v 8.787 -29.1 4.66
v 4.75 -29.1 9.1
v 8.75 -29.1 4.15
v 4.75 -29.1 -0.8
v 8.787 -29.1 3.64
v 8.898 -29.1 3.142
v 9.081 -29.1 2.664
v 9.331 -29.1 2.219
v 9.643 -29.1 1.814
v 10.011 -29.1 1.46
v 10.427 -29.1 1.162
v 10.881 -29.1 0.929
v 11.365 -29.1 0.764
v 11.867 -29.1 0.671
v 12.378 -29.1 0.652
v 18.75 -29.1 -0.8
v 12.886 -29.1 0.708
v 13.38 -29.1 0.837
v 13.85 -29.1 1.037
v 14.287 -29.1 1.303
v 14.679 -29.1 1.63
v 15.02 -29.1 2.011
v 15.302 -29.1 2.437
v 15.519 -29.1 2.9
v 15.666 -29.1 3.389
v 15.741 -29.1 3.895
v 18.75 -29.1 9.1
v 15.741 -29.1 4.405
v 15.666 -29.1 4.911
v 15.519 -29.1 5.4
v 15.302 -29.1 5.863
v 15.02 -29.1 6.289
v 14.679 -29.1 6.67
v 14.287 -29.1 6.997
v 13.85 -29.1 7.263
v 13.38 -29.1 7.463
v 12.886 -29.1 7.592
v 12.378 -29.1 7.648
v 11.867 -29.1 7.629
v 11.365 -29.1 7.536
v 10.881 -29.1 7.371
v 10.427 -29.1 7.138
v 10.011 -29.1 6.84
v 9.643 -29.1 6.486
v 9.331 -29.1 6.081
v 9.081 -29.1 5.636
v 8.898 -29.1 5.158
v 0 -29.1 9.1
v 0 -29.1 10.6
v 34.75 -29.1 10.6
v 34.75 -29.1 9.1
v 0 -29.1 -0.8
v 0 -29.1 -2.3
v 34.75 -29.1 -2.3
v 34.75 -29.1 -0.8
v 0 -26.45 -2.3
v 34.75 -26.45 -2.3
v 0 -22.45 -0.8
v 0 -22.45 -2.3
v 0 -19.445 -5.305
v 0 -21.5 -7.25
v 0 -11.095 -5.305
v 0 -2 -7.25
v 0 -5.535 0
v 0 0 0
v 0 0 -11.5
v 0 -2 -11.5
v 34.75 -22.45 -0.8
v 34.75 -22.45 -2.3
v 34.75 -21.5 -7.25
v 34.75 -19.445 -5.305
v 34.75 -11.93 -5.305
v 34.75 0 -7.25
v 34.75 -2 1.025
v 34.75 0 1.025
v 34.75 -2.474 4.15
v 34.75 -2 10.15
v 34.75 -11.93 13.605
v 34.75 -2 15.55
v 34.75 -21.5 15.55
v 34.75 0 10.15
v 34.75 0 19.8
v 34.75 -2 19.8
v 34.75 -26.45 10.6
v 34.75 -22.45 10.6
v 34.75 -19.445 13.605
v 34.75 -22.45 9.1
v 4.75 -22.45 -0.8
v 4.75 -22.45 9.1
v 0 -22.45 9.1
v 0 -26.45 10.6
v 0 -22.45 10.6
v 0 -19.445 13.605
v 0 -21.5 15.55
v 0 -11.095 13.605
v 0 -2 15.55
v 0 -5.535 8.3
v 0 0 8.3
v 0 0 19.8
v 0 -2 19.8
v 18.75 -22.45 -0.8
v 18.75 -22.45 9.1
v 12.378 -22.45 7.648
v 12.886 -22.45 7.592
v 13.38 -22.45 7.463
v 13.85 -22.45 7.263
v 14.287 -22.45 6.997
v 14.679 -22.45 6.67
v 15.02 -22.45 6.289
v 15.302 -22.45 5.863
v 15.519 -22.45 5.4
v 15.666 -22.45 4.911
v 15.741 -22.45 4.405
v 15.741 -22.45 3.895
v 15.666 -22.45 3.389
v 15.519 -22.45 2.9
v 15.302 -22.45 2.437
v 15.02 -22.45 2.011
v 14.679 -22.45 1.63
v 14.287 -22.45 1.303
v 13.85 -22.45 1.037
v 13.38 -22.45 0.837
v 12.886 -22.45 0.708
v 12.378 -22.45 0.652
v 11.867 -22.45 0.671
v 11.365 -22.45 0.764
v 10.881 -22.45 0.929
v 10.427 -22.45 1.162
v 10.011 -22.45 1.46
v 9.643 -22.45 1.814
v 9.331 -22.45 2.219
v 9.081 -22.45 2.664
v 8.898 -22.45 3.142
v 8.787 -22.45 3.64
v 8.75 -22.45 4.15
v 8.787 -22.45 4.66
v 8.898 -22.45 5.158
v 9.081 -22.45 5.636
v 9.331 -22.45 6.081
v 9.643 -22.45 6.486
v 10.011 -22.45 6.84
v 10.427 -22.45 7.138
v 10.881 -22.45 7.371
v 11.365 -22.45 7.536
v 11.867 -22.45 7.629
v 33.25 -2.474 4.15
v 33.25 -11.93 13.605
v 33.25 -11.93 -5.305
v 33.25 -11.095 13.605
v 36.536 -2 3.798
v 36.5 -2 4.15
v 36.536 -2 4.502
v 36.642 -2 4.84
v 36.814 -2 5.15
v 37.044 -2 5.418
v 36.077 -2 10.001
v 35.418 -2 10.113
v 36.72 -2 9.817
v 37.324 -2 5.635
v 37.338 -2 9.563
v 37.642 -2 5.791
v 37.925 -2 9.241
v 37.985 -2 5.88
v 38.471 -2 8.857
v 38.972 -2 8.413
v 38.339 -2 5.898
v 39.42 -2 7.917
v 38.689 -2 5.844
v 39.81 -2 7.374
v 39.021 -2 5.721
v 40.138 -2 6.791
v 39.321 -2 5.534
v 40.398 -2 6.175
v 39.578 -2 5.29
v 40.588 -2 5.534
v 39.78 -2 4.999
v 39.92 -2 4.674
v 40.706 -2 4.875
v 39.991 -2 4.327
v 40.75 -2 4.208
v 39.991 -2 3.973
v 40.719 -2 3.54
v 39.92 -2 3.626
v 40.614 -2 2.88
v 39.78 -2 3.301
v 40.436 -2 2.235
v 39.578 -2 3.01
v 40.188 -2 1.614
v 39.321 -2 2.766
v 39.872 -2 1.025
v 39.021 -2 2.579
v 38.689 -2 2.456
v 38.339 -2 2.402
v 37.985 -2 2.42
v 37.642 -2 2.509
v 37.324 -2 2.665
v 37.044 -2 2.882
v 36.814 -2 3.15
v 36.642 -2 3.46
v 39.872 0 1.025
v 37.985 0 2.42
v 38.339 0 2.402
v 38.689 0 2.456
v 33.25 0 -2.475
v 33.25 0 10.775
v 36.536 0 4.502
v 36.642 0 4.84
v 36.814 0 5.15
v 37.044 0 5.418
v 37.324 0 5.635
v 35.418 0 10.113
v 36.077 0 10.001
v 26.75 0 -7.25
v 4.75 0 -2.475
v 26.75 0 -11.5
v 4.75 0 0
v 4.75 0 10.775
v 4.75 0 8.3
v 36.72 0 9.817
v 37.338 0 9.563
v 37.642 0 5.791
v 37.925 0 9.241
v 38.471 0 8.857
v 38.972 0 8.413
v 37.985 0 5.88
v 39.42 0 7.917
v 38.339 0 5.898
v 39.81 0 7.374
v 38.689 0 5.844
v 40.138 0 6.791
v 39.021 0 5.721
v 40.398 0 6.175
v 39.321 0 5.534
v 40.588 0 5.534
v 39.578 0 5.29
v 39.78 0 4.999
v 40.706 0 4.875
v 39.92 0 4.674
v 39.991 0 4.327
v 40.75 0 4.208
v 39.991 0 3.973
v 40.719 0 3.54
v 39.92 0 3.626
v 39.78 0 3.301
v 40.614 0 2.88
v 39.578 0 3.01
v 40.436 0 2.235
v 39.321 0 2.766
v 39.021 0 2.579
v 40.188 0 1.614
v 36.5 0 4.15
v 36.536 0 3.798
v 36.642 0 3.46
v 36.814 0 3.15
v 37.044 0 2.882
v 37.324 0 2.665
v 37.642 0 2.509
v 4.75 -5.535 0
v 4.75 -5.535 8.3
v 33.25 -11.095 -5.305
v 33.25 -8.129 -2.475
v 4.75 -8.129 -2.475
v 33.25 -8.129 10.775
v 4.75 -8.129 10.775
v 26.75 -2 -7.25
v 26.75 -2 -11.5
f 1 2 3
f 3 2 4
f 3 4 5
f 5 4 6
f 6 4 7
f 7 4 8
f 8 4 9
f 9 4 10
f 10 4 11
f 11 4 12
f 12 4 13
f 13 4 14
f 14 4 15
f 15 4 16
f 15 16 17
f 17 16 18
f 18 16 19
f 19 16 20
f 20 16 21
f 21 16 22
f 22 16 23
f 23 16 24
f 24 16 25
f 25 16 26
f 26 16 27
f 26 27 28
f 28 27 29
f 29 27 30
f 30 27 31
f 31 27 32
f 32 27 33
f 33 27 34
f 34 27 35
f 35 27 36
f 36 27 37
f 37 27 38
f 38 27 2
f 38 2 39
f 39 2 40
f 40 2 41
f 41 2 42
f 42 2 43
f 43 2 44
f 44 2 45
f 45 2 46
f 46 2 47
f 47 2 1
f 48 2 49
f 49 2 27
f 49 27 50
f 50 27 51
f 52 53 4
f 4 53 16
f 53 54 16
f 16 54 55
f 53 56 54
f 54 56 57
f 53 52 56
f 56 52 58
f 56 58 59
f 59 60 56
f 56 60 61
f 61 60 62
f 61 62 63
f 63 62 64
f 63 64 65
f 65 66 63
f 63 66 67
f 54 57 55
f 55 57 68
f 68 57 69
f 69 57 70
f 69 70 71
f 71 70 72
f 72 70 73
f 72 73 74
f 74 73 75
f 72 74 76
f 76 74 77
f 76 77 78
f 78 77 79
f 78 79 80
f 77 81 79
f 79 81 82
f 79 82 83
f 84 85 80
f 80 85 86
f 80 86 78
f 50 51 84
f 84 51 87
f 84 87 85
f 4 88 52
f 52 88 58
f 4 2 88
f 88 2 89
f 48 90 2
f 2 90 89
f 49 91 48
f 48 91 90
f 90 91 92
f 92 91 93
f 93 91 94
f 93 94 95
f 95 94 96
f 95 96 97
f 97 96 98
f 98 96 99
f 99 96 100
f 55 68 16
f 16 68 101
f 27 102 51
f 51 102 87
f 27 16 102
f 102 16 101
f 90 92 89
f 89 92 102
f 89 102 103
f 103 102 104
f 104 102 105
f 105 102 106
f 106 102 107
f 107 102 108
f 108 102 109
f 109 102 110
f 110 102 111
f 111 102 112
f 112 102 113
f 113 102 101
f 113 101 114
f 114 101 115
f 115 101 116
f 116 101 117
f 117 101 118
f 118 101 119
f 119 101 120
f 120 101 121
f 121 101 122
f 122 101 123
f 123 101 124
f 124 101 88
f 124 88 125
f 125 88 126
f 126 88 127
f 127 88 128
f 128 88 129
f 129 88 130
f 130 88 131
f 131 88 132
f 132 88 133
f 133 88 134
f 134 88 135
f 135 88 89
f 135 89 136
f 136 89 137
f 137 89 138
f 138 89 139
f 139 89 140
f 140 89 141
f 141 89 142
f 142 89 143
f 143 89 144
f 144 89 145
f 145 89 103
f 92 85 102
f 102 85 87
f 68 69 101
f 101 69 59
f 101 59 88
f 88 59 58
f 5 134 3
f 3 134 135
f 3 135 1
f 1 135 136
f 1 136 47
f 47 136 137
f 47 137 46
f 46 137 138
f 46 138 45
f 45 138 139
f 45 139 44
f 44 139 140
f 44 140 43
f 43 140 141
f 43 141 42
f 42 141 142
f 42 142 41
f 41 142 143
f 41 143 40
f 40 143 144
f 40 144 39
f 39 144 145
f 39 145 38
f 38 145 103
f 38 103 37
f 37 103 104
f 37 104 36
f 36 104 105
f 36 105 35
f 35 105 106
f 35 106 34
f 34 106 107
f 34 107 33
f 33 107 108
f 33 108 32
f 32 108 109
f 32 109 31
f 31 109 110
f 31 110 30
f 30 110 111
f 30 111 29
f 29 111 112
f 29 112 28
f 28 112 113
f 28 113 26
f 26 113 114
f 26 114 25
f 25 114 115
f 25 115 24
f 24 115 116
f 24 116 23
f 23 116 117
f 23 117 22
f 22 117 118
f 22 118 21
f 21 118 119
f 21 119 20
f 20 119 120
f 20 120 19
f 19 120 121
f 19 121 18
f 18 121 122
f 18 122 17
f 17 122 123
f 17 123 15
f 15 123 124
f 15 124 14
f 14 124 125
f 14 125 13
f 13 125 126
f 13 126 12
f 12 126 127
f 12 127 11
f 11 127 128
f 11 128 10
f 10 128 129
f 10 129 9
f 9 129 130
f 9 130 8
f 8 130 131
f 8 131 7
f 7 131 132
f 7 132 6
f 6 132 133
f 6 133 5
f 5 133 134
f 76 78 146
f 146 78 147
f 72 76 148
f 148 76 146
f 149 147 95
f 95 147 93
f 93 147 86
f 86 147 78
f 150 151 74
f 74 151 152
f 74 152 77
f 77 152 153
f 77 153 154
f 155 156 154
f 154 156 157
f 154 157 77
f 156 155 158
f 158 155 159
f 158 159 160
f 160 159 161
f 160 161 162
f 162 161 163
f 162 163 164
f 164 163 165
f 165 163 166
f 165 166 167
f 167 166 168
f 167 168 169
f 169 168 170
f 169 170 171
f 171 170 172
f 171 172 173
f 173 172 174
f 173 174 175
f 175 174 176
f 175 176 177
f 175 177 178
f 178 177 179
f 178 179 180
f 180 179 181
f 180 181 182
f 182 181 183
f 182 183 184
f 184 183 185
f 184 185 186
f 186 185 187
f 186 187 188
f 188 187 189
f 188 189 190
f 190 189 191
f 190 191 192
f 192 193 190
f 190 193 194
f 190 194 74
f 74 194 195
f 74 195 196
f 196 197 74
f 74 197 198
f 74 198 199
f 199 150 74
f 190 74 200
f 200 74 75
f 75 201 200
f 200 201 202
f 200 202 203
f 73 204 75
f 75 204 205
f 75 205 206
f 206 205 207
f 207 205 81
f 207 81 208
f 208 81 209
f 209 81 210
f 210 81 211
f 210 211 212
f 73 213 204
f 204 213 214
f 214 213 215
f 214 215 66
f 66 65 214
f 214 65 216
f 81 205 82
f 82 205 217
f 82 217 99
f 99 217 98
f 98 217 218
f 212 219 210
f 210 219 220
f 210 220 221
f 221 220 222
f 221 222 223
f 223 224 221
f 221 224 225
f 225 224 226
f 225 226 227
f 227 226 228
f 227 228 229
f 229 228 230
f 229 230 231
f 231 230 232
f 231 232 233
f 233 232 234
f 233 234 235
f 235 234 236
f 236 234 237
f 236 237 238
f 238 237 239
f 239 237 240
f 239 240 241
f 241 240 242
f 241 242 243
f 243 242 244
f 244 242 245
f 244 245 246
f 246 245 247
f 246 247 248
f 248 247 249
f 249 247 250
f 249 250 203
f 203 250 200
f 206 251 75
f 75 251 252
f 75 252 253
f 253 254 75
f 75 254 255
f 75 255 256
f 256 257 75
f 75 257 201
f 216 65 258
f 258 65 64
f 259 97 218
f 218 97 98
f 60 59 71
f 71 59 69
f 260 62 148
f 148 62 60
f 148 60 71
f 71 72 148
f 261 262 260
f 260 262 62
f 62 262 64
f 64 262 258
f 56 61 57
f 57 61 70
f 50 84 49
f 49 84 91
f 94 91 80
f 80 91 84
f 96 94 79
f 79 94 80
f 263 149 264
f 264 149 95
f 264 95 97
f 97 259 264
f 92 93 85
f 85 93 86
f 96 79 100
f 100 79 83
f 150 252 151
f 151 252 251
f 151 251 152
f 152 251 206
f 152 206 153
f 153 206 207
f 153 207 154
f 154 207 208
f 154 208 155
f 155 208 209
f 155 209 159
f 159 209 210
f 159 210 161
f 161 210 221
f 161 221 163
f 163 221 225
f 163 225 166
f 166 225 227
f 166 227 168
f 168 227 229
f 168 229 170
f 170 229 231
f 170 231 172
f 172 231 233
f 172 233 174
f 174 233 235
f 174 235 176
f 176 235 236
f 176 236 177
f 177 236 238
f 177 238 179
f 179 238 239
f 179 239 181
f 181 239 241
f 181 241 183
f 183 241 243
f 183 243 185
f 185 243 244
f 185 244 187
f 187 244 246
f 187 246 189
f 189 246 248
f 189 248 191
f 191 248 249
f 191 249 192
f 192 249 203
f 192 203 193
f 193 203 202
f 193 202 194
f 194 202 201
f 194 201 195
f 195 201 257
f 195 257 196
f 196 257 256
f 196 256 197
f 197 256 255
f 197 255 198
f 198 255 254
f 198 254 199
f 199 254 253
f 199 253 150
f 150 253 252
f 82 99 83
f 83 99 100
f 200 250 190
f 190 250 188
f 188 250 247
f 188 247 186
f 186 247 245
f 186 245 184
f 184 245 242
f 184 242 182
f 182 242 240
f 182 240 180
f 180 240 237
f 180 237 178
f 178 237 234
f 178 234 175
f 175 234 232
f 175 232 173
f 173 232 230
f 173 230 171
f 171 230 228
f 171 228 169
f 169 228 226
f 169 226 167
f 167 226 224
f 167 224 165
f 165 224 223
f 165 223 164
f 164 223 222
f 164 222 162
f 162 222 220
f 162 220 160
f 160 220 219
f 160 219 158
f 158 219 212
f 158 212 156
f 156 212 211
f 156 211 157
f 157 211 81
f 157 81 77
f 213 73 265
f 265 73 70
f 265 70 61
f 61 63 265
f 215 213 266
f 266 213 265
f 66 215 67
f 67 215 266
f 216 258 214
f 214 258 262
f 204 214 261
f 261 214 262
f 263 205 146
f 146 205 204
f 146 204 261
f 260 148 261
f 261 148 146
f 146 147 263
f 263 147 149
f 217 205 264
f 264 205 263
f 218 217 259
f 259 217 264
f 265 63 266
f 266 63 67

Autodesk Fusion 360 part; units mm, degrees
sketch "Sketch1" plane through (0, 0, 0) normal (0, 1, 0) x (1, 0, 0)
  line L0 (0, 0) -> (0, 11.5)
  line L1 (0, 0) -> (0, -8.3) construction
  line L2 (0, -8.3) -> (0, -19.8)
  line L3 (0, -19.8) -> (34.75, -19.8)
  line L4 (34.75, -19.8) -> (34.75, -10.025)
  line L5 (0, 11.5) -> (26.75, 11.5)
  line L6 (26.75, 11.5) -> (26.75, 7.25)
  line L7 (26.75, 7.25) -> (34.75, 7.25)
  line L8 (34.75, 7.25) -> (34.75, 1.85)
  line L9 (0, 0) -> (4.75, 0)
  line L10 (0, -8.3) -> (4.75, -8.3)
  line L11 (4.75, 0) -> (4.75, 2.475)
  line L12 (4.75, 2.475) -> (33.25, 2.475)
  line L13 (4.75, -8.3) -> (4.75, -10.775)
  line L14 (4.75, -10.775) -> (33.25, -10.775)
  line L15 (33.25, -10.775) -> (33.25, 2.475)
  line L16 (33.25, -4.15) -> (34.75, -4.15)
  arc A0 (34.75, -10.15) -> (34.75, 1.85) centre (34.75, -4.15) ccw
  line L17 (33.25, -4.15) -> (38.25, -4.15)
  circle A1 centre (38.25, -4.15) radius 1.75
  dimension "d1" = 11.5
  dimension "d2" = 8.3
  dimension "d3" = 11.5
  dimension "d4" = 34.75
  dimension "d5" = 9.775
  dimension "d6" = 26.75
  dimension "d7" = 4.25
  dimension "d8" = 8
  dimension "d10" = 4.75
  dimension "d11" = 4.75
  dimension "d12" = 2.475
  dimension "d13" = 28.5
  dimension "d14" = 2.475
  dimension "d15" = 28.5
  dimension "d16" = 12
  dimension "d17" = 5
  dimension "d18" = 3.5
extrude "Extrude1" add sketch "Sketch1" against normal blind 2
sketch "Sketch2" plane through (0, 0, 0) normal (-1, 0, 0) x (0, 0, 1)
  line L0 (0, 0) -> (-11.5, 0)
  line L1 (-11.5, 0) -> (-11.5, -2)
  line L2 (-11.5, -2) -> (0, -2)
  line L3 (0, -2) -> (0, 0)
  line L4 (0, -2) -> (0, -5.535)
  line L5 (8.3, -2) -> (8.3, -5.535)
  line L6 (0, -2) -> (-7.25, -2) construction
  line L7 (8.3, -2) -> (15.55, -2) construction
  line L8 (-7.25, -2) -> (-7.25, -21.5)
  line L9 (15.55, -2) -> (15.55, -21.5)
  line L10 (-7.25, -21.5) -> (-2.3003, -26.4497)
  line L11 (-7.25, -21.5) -> (-0.25, -21.5) construction
  line L12 (15.55, -21.5) -> (10.6003, -26.4497)
  line L13 (15.55, -21.5) -> (22.55, -21.5) construction
  line L14 (-2.3003, -26.4497) -> (-2.3003, -29.5997)
  line L15 (10.6003, -26.4497) -> (10.6003, -29.5997)
  line L16 (-2.3003, -29.5997) -> (10.6003, -29.5997)
  line L17 (-2.3003, -29.5997) -> (-2.3003, -22.4497) construction
  line L18 (10.6003, -29.5997) -> (10.6003, -22.4497) construction
  line L19 (10.6003, -22.4497) -> (-2.3003, -22.4497)
  line L20 (-2.3003, -22.4497) -> (-5.3055, -19.4445)
  line L21 (-2.3003, -22.4497) -> (1.9497, -22.4497) construction
  line L22 (10.6003, -22.4497) -> (13.6055, -19.4445)
  line L23 (10.6003, -22.4497) -> (14.8503, -22.4497) construction
  line L24 (-5.3055, -19.4445) -> (-5.3055, -11.0945)
  line L25 (13.6055, -19.4445) -> (13.6055, -11.0945)
  line L26 (-5.3055, -11.0945) -> (0, -5.535)
  line L27 (13.6055, -11.0945) -> (8.3, -5.535)
  line L28 (-7.25, -2) -> (0, -2)
  line L29 (8.3, -2) -> (15.55, -2)
  point P0 (8.3, -2)
  dimension "d24" = 3.535
  dimension "d25" = 3.535
  dimension "d26" = 7.25
  dimension "d27" = 7.25
  dimension "d28" = 19.5
  dimension "d29" = 19.5
  dimension "d30" = 45
  dimension "d31" = 7
  dimension "d32" = 135
  dimension "d33" = 7
  dimension "d34" = 3.15
  dimension "d35" = 3.15
  dimension "d36" = 7.15
  dimension "d37" = 7.15
  dimension "d38" = 135
  dimension "d39" = 4.25
  dimension "d40" = 45
  dimension "d41" = 4.25
  dimension "d42" = 8.35
  dimension "d43" = 8.35
extrude "Extrude2" add sketch "Sketch2" against normal blind 34.75 contours L2 L4 L5 L8 L9 L10 L12 L14 L15 L16 L19 L20 L22 L24 L25 L26 L27 L28 L29
extrude "Extrude3" cut 2 faces at (14.25, -2, -1.65) (23.75, -2, 9.125) along direction (0, -1, 0) blind 10
sketch "Sketch3" plane through (0, 0, 0) normal (0, 1, 0) x (-1, 0, 0)
  circle A0 centre (-38.25, 4.15) radius 1.75
  line L0 (0, 8.3) -> (0, 19.8)
  line L1 (0, 19.8) -> (-34.75, 19.8)
  line L2 (-34.75, 19.8) -> (-34.75, 10.15)
  arc A1 (-34.75, 10.15) -> (-34.75, -1.85) centre (-34.75, 4.15) ccw
  line L3 (-34.75, -1.85) -> (-34.75, -7.25)
  line L4 (-34.75, -7.25) -> (-26.75, -7.25)
  line L5 (-26.75, -7.25) -> (-26.75, -11.5)
  line L6 (-26.75, -11.5) -> (0, -11.5)
  line L7 (0, -11.5) -> (0, 0)
  line L8 (0, 0) -> (-4.75, 0)
  line L9 (-4.75, 0) -> (-4.75, -2.475)
  line L10 (-4.75, -2.475) -> (-33.25, -2.475)
  line L11 (-33.25, -2.475) -> (-33.25, 10.775)
  line L12 (-33.25, 10.775) -> (-4.75, 10.775)
  line L13 (-4.75, 10.775) -> (-4.75, 8.3)
  line L14 (-4.75, 8.3) -> (0, 8.3)
  line L15 (-34.75, -1.85) -> (-34.75, 1.025)
  line L16 (-34.75, 1.025) -> (-41.4539, 1.025)
  dimension "d48" = 2.875
extrude "Extrude4" cut sketch "Sketch3" against normal blind 13 contours A1 L15 L16
sketch "Sketch4" plane through (34.75, 0, 0) normal (1, 0, 0) x (0, 0, -1)
  line L0 (0, -5.535) -> (5.3055, -11.0945)
  line L1 (5.3055, -11.0945) -> (5.3055, -19.4445)
  line L2 (5.3055, -19.4445) -> (2.3003, -22.4497)
  line L3 (2.3003, -22.4497) -> (-10.6003, -22.4497)
  line L4 (-10.6003, -22.4497) -> (-13.6055, -19.4445)
  line L5 (-13.6055, -19.4445) -> (-13.6055, -11.0945)
  line L6 (-13.6055, -11.0945) -> (-8.3, -5.535)
  line L7 (-8.3, -5.535) -> (-8.3, -2)
  line L8 (-8.3, -2) -> (-10.15, -2)
  line L9 (-10.15, -2) -> (-10.15, 0)
  line L10 (-10.15, 0) -> (-19.8, 0)
  line L11 (-19.8, 0) -> (-19.8, -2)
  line L12 (-19.8, -2) -> (-15.55, -2)
  line L13 (-15.55, -2) -> (-15.55, -21.5)
  line L14 (-15.55, -21.5) -> (-10.6003, -26.4497)
  line L15 (-10.6003, -26.4497) -> (-10.6003, -29.5997)
  line L16 (-10.6003, -29.5997) -> (2.3003, -29.5997)
  line L17 (2.3003, -29.5997) -> (2.3003, -26.4497)
  line L18 (2.3003, -26.4497) -> (7.25, -21.5)
  line L19 (7.25, -21.5) -> (7.25, 0)
  line L20 (7.25, 0) -> (-1.025, 0)
  line L21 (-1.025, 0) -> (-1.025, -2)
  line L22 (-1.025, -2) -> (0, -2)
  line L23 (0, -2) -> (0, -5.535)
  line L24 (-3.535, -2) -> (-3.6055, -1.9295)
  line L25 (0, -5.535) -> (10, -5.535) construction
  line L26 (-4.765, -2) -> (-4.6945, -1.9295)
  line L27 (-8.3, -5.535) -> (1.7, -5.535) construction
  line L28 (-16, -15) -> (-15.5, -15)
  line L29 (-13.6055, -11.0945) -> (-13.6055, -11.9295)
  line L30 (-13.6055, -11.9295) -> (6.3945, -11.9295) construction
  line L31 (5.3055, -11.0945) -> (5.3055, -11.9295)
  line L32 (5.3055, -11.9295) -> (25.3055, -11.9295) construction
  line L33 (-8.3, -5.535) -> (-8.3, -2)
  line L34 (-8.3, -2) -> (0, -2)
  line L35 (0, -2) -> (0, -5.535)
  line L36 (0, -5.535) -> (5.3055, -11.0945)
  line L37 (-13.6055, -11.9295) -> (-4.15, -2.4741)
  line L38 (-3.6759, -2) -> (-3.6055, -1.9295)
  line L39 (5.3055, -11.9295) -> (-4.15, -2.4741)
  line L40 (-4.6241, -2) -> (-4.6945, -1.9295)
  dimension "d51" = 135
  dimension "d53" = 45
  dimension "d55" = 0.835
  dimension "d56" = 45
  dimension "d58" = 0.835
  dimension "d59" = 135
extrude "Extrude5" add sketch "Sketch4" against normal blind 1.5 contours L0 L1 L5 L6 L7 L22 L23 L29 L31 L33 L34 L35 L36 L37 L39
sketch "Sketch5" plane through (0, -29.5997, 0) normal (0, -1, 0) x (1, 0, 0)
  line L0 (0, 10.6003) -> (0, -2.3003)
  line L1 (0, -2.3003) -> (34.75, -2.3003)
  line L2 (34.75, -2.3003) -> (34.75, 10.6003)
  line L3 (34.75, 10.6003) -> (0, 10.6003)
  line L4 (0, 4.15) -> (12.25, 4.15)
  circle A0 centre (12.25, 4.15) radius 3.5
  dimension "d63" = 12.25
  dimension "d65" = 7
extrude "Extrude6" cut sketch "Sketch5" against normal blind 13 contours A0
sketch "Sketch6" plane through (34.75, 0, 0) normal (1, 0, 0) x (0, 0, -1)
  line L0 (-1.025, -2) -> (-10.15, -2)
  line L1 (-10.15, -2) -> (-10.15, 0)
  line L2 (-10.15, 0) -> (-19.8, 0)
  line L3 (-19.8, 0) -> (-19.8, -2)
  line L4 (-19.8, -2) -> (-15.55, -2)
  line L5 (-15.55, -2) -> (-15.55, -21.5)
  line L6 (-15.55, -21.5) -> (-10.6003, -26.4497)
  line L7 (-10.6003, -26.4497) -> (-10.6003, -29.5997)
  line L8 (-10.6003, -29.5997) -> (2.3003, -29.5997)
  line L9 (2.3003, -29.5997) -> (2.3003, -26.4497)
  line L10 (2.3003, -26.4497) -> (7.25, -21.5)
  line L11 (7.25, -21.5) -> (7.25, 0)
  line L12 (7.25, 0) -> (-1.025, 0)
  line L13 (-1.025, 0) -> (-1.025, -2)
  line L14 (-13.6055, -11.9295) -> (-4.15, -2.4741)
  line L15 (-4.15, -2.4741) -> (5.3055, -11.9295)
  line L16 (5.3055, -11.9295) -> (5.3055, -19.4445)
  line L17 (5.3055, -19.4445) -> (2.3003, -22.4497)
  line L18 (2.3003, -22.4497) -> (-10.6003, -22.4497)
  line L19 (-10.6003, -22.4497) -> (-13.6055, -19.4445)
  line L20 (-13.6055, -19.4445) -> (-13.6055, -11.9295)
  line L21 (2.3003, -29.5997) -> (0.8003, -29.5997)
  line L22 (-10.6003, -29.5997) -> (-9.1003, -29.5997)
  line L23 (-9.1003, -29.5997) -> (-9.1003, -22.4494)
  line L24 (0.8003, -29.5997) -> (0.8003, -22.4497)
  dimension "d69" = 1.5
  dimension "d70" = 1.5
  dimension "d71" = 7.15
extrude "Extrude7" cut sketch "Sketch6" against normal blind 16 contours L8 L18 L23 L24
sketch "Sketch7" plane through (0, 0, 0) normal (-1, 0, 0) x (0, 0, 1)
  line L0 (0, 0) -> (-11.5, 0)
  line L1 (-11.5, 0) -> (-11.5, -2)
  line L2 (-11.5, -2) -> (-7.25, -2)
  line L3 (-7.25, -2) -> (-7.25, -21.5)
  line L4 (-7.25, -21.5) -> (-2.3003, -26.4497)
  line L5 (-2.3003, -26.4497) -> (-2.3003, -29.5997)
  line L6 (-2.3003, -29.5997) -> (10.6003, -29.5997)
  line L7 (10.6003, -29.5997) -> (10.6003, -26.4497)
  line L8 (10.6003, -26.4497) -> (15.55, -21.5)
  line L9 (15.55, -21.5) -> (15.55, -2)
  line L10 (15.55, -2) -> (19.8, -2)
  line L11 (19.8, -2) -> (19.8, 0)
  line L12 (19.8, 0) -> (8.3, 0)
  line L13 (8.3, 0) -> (8.3, -5.535)
  line L14 (8.3, -5.535) -> (13.6055, -11.0945)
  line L15 (13.6055, -11.0945) -> (13.6055, -19.4445)
  line L16 (13.6055, -19.4445) -> (10.6003, -22.4497)
  line L17 (10.6003, -22.4497) -> (-2.3003, -22.4497)
  line L18 (-2.3003, -22.4497) -> (-5.3055, -19.4445)
  line L19 (-5.3055, -19.4445) -> (-5.3055, -11.0945)
  line L20 (-5.3055, -11.0945) -> (0, -5.535)
  line L21 (0, -5.535) -> (0, 0)
  line L22 (10.6003, -29.5997) -> (9.1003, -29.5997)
  line L23 (-2.3003, -29.5997) -> (-0.8003, -29.5997)
  line L24 (-0.8003, -29.5997) -> (-0.8003, -22.4497)
  line L25 (9.1003, -29.5997) -> (9.1003, -22.4497)
  point P0 (-0.8003, -22.4497)
  point P1 (9.1003, -22.4497)
  dimension "d74" = 1.5
  dimension "d75" = 1.5
extrude "Extrude8" cut sketch "Sketch7" against normal blind 4.75 contours L6 L17 L24 L25
extrude "Extrude9" cut 1 faces at (6.0833, -29.5997, 4.15) along direction (0, 1, 0) blind 0.5
sketch "Sketch8" plane through (0, 0, 0) normal (0, 1, 0) x (-1, 0, 0)
  line L0 (-39.872, 1.025) -> (-34.75, 1.025)
  line L1 (-34.75, 1.025) -> (-34.75, -7.25)
  line L2 (-34.75, -7.25) -> (-26.75, -7.25)
  line L3 (-26.75, -7.25) -> (-26.75, -11.5)
  line L4 (-26.75, -11.5) -> (0, -11.5)
  line L5 (0, -11.5) -> (0, 0)
  line L6 (0, 0) -> (-4.75, 0)
  line L7 (-4.75, 0) -> (-4.75, -2.475)
  line L8 (-4.75, -2.475) -> (-33.25, -2.475)
  line L9 (-33.25, -2.475) -> (-33.25, 10.775)
  line L10 (-33.25, 10.775) -> (-4.75, 10.775)
  line L11 (-4.75, 10.775) -> (-4.75, 8.3)
  line L12 (-4.75, 8.3) -> (0, 8.3)
  line L13 (0, 8.3) -> (0, 19.8)
  line L14 (0, 19.8) -> (-34.75, 19.8)
  line L15 (-34.75, 19.8) -> (-34.75, 10.15)
  arc A0 (-34.75, 10.15) -> (-39.872, 1.025) centre (-34.75, 4.15) ccw
  circle A1 centre (-38.25, 4.15) radius 1.75
  line L16 (-34.75, 10.15) -> (-34.75, 1.025)
  line L17 (-34.75, 4.15) -> (-38.25, 4.15)
equation "d17 = HolePosX"
equation "d18 = HoleSize"
equation "HolePosX = 5 mm"
equation "HoleSize = 3.5 mm"
equation "d21 = -TopThickness"
equation "TopThickness = 2 mm"
equation "d63 = JointPosX"
equation "JointPosX = 12.25 mm"
equation "d65 = HoleBall"
equation "HoleBall = 7 mm"
